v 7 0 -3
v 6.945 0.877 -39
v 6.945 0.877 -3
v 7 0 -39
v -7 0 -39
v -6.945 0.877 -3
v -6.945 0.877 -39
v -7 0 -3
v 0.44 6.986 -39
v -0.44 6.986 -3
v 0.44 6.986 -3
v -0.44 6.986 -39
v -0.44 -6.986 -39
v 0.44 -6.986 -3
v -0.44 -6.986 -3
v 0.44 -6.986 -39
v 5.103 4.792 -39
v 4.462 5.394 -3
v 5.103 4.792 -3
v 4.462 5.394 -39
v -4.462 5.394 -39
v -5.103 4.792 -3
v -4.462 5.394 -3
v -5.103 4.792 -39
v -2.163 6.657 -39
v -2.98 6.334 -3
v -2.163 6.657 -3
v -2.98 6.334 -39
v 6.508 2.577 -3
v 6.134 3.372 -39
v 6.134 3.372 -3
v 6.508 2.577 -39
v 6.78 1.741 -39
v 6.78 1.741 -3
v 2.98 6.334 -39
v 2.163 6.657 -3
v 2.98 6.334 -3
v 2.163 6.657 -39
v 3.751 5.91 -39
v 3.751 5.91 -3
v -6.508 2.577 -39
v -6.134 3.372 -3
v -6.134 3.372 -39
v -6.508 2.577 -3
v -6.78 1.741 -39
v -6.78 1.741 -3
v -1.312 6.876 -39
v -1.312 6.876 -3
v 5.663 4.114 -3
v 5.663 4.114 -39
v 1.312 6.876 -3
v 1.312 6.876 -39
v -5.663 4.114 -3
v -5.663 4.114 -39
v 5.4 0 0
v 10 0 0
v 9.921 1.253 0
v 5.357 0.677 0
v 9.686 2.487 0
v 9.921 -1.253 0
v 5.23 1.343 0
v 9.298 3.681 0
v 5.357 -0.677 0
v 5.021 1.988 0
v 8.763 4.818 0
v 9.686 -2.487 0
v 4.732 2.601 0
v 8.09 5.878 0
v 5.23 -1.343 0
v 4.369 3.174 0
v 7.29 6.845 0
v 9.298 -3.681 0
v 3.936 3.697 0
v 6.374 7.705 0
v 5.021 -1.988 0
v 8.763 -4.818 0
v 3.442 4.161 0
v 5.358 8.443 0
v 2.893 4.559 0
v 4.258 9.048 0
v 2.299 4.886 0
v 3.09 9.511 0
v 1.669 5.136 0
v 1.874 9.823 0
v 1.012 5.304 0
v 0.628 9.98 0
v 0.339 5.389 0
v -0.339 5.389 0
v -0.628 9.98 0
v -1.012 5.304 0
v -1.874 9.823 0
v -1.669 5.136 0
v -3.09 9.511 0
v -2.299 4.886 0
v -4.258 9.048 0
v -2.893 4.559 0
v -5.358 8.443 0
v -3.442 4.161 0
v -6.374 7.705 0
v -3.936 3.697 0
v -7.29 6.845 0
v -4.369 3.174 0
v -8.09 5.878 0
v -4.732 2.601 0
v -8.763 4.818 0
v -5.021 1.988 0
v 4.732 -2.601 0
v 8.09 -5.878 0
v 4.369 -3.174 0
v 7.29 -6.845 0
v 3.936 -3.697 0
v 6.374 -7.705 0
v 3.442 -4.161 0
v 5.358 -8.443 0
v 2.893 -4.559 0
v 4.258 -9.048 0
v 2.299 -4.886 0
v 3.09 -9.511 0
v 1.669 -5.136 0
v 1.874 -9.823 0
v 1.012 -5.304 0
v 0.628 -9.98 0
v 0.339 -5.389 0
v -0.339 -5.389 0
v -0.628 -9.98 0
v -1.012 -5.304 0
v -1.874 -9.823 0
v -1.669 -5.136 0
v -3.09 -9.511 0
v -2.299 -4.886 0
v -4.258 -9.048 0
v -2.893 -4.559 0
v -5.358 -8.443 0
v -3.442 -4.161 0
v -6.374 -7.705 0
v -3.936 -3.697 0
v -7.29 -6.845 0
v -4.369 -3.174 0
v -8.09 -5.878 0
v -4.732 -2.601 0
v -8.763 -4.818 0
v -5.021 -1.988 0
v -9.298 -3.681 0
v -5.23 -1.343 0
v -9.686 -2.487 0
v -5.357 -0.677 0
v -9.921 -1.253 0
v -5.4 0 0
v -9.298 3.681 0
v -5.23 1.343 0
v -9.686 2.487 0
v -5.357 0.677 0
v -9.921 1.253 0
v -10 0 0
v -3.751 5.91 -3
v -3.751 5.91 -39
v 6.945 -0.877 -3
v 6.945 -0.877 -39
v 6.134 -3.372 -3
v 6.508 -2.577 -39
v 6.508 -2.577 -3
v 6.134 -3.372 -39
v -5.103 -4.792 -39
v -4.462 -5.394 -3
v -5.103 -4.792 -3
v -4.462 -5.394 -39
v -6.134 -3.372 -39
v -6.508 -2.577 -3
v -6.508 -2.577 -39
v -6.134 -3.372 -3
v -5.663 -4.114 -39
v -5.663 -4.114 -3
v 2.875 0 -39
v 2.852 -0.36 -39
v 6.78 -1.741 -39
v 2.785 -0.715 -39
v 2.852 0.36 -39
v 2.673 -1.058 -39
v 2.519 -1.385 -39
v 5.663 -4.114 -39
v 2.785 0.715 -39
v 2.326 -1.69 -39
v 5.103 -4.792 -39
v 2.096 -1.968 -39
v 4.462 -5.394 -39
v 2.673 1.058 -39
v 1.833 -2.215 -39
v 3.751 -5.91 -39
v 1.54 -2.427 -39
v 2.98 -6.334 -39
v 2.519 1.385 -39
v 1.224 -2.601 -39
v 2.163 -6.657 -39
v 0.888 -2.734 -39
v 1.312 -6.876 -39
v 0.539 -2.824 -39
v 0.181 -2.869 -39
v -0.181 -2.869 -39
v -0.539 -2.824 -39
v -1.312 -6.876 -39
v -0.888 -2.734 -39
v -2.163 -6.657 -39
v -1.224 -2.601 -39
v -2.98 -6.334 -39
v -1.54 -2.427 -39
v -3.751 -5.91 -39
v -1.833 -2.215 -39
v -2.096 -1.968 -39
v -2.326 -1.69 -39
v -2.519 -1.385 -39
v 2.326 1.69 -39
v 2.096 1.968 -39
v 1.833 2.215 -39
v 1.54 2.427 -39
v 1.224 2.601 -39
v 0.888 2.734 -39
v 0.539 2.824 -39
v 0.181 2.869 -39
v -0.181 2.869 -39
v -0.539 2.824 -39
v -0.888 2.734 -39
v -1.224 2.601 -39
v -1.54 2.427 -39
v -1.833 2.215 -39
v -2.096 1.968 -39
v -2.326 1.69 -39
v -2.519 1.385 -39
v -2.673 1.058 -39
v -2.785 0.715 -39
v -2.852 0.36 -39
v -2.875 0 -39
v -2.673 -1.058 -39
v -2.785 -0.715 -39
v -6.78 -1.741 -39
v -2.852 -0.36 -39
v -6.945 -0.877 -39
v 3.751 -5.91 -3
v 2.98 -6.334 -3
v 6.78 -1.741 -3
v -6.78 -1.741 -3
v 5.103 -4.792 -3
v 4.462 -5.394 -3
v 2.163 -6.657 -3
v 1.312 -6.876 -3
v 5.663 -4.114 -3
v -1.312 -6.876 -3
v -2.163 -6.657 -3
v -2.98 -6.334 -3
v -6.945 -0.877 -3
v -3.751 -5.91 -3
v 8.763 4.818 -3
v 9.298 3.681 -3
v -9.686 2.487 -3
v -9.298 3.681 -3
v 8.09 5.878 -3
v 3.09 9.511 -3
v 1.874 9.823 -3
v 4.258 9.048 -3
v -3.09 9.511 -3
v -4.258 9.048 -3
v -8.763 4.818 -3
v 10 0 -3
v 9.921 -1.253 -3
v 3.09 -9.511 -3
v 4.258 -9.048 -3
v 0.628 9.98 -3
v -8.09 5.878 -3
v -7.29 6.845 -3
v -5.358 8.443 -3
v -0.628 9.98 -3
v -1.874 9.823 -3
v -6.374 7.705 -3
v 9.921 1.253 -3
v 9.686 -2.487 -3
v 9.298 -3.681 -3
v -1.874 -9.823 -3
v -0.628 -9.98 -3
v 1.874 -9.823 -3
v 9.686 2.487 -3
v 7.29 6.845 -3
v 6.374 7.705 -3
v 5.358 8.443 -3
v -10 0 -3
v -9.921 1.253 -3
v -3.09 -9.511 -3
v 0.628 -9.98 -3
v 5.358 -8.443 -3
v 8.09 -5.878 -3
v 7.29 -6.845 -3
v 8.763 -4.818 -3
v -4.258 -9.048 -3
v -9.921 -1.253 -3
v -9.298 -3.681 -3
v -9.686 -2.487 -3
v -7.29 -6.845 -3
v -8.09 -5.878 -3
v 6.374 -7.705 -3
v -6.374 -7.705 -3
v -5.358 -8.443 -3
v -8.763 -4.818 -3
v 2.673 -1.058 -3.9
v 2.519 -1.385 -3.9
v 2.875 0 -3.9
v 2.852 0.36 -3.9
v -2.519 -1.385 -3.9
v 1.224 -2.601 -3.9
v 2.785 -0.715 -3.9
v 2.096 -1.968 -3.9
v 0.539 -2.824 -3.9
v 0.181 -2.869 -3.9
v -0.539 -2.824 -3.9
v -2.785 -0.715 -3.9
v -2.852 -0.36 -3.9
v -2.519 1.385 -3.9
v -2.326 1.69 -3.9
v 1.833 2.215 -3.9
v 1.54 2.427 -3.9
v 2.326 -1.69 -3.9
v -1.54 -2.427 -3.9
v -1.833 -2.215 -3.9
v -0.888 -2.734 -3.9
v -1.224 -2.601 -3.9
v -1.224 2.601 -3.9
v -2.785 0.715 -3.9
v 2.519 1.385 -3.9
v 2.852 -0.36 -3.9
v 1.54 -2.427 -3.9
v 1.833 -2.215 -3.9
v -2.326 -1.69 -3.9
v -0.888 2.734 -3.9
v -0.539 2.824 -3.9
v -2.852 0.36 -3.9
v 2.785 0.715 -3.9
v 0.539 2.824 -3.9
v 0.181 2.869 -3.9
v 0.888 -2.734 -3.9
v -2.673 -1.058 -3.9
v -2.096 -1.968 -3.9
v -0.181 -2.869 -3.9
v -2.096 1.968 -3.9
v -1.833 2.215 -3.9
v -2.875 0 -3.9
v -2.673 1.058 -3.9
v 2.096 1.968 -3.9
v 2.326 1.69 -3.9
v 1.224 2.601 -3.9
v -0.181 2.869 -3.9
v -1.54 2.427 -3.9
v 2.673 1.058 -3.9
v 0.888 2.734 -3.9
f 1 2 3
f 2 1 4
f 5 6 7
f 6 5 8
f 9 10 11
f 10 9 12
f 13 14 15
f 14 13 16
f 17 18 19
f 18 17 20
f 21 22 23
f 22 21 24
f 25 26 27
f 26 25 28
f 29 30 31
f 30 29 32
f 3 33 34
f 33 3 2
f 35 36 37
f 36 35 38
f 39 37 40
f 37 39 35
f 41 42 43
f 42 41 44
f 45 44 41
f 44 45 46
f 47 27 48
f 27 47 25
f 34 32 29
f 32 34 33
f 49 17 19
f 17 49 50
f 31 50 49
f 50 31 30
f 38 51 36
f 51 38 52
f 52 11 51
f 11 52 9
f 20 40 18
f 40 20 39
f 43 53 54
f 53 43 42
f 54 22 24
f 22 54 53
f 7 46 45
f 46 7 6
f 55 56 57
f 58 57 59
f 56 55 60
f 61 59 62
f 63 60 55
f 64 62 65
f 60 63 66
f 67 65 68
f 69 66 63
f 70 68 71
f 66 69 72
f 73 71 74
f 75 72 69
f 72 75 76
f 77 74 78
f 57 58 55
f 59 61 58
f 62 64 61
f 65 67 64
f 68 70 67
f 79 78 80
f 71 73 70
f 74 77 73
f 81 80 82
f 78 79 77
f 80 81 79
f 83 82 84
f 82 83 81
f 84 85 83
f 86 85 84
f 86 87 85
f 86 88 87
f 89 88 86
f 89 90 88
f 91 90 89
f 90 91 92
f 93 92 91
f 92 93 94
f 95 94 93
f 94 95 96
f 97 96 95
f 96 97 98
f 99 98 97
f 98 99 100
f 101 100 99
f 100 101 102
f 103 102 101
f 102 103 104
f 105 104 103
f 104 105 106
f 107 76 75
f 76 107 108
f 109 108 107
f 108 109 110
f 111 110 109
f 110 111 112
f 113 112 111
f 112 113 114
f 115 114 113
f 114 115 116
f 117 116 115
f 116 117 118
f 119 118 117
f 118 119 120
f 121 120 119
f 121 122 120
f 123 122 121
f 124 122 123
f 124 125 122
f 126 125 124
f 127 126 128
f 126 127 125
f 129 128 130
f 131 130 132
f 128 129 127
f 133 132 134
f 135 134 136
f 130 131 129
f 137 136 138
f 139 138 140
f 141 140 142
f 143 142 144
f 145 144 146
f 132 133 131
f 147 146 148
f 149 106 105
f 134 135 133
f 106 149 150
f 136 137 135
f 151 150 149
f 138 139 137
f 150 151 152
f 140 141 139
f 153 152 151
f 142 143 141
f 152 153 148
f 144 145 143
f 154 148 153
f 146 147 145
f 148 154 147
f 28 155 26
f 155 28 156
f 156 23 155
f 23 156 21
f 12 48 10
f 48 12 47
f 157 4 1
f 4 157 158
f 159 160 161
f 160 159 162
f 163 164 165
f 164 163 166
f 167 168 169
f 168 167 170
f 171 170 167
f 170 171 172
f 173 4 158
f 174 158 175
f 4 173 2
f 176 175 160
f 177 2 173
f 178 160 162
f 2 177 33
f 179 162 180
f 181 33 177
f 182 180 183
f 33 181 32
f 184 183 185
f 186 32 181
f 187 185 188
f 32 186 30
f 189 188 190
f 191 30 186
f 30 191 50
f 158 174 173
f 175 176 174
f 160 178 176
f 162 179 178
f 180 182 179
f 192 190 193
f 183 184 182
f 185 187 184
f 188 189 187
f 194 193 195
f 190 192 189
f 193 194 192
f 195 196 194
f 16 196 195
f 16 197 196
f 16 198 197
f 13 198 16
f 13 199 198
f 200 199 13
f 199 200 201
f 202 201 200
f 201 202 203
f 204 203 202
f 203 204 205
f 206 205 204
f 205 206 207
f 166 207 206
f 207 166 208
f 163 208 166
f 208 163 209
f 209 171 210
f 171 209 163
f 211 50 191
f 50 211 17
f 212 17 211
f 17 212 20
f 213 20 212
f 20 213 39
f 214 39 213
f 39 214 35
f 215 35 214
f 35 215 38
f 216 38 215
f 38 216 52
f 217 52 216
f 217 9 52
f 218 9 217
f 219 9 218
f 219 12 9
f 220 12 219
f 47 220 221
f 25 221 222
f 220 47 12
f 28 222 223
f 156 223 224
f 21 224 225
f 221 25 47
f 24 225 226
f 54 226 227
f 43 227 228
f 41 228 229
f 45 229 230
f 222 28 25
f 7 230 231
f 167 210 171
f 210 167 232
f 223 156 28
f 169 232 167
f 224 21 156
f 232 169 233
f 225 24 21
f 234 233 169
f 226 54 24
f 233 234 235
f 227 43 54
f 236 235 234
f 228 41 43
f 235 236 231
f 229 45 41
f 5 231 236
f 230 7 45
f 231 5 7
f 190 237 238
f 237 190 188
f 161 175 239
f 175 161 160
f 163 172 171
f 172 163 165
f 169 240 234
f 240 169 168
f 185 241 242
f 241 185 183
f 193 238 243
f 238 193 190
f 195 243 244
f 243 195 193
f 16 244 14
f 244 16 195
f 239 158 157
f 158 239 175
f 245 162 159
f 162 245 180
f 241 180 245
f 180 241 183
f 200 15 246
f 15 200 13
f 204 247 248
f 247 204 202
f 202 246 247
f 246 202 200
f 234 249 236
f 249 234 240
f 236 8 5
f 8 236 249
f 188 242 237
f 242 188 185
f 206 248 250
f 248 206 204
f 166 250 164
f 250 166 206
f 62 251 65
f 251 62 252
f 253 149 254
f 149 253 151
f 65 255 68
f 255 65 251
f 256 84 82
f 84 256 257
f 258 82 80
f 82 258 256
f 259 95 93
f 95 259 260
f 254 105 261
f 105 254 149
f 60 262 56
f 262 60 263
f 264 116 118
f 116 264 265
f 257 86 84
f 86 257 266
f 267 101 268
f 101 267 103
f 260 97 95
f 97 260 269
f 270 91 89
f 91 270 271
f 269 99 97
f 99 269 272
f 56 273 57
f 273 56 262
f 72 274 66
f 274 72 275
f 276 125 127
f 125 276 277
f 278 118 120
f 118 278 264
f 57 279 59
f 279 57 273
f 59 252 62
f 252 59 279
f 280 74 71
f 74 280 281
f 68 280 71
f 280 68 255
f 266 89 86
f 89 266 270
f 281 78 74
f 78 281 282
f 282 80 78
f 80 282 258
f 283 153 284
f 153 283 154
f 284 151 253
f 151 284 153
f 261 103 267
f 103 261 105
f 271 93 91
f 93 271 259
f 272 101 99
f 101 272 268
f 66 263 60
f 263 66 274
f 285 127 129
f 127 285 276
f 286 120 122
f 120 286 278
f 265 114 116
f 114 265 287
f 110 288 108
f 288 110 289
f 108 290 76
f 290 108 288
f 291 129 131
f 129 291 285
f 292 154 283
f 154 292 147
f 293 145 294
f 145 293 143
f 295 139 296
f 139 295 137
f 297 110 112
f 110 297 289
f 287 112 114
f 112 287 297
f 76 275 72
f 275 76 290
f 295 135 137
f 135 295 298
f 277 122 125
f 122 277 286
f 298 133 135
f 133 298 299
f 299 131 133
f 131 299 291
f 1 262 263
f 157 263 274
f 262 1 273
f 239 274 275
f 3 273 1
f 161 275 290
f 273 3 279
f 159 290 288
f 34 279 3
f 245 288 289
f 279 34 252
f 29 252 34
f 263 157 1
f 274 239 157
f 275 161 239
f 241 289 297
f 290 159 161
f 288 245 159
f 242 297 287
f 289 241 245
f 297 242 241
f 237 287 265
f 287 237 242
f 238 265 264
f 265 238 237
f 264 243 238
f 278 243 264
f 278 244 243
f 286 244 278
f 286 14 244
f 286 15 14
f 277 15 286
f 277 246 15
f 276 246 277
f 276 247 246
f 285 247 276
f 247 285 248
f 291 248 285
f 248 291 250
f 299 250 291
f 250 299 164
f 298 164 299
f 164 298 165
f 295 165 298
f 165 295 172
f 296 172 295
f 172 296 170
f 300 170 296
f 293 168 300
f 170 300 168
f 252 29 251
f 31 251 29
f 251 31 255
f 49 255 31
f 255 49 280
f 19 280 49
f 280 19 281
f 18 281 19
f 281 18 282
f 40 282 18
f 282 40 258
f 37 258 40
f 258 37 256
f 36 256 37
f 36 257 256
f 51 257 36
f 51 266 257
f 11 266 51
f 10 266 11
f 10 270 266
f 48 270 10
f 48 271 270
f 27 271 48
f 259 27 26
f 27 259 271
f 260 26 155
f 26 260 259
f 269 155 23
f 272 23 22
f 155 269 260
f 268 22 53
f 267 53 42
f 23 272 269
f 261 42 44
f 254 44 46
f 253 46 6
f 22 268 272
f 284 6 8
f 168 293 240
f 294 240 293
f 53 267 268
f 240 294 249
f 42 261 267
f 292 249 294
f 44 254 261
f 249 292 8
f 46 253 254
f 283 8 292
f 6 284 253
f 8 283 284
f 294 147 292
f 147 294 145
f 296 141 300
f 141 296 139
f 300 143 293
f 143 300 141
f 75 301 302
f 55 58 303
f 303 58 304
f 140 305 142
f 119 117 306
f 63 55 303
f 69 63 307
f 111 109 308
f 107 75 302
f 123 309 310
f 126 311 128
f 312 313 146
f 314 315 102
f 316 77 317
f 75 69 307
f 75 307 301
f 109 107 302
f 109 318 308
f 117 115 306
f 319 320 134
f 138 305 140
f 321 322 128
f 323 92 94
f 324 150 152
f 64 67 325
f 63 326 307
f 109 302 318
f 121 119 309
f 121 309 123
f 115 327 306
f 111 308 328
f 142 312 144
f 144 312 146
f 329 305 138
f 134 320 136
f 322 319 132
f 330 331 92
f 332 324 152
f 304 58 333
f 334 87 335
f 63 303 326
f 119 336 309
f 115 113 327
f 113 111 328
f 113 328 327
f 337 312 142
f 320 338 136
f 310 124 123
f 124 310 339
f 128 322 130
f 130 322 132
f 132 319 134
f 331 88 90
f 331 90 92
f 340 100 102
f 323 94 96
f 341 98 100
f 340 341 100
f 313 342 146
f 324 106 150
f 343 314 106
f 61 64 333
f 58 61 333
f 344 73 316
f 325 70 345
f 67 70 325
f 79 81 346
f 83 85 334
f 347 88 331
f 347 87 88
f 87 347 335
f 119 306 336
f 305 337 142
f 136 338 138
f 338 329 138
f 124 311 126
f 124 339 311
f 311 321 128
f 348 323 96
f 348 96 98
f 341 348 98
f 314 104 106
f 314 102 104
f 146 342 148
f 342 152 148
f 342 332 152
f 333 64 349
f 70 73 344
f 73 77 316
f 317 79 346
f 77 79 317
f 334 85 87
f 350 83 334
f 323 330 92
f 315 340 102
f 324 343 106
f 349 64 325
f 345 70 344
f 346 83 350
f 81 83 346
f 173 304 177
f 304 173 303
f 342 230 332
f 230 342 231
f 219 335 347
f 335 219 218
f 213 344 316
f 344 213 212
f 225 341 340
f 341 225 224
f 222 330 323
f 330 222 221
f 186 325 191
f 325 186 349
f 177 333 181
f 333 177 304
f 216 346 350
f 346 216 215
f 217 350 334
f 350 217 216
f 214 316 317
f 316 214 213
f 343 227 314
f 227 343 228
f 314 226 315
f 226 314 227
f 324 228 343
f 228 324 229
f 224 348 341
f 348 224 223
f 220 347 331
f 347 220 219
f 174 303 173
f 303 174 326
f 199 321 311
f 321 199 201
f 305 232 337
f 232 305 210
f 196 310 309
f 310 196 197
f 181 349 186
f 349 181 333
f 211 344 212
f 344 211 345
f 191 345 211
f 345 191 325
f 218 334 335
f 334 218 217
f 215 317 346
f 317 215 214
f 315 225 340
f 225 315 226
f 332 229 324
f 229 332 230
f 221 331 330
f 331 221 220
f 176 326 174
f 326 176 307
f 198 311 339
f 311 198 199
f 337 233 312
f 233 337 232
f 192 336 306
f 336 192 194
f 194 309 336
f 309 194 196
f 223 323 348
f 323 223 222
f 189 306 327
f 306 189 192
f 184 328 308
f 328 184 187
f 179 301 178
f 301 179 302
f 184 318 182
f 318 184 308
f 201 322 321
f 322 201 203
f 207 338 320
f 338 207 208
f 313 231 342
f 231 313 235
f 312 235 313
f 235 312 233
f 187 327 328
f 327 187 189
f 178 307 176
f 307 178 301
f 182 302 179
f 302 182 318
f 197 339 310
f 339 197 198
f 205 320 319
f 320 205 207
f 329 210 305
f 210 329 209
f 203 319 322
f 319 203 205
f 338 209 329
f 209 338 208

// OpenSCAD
$fn = 50;


difference() {
	union() {
		translate(v = [0, 0, -39.0000000000]) {
			cylinder(h = 39, r = 7.0000000000);
		}
		translate(v = [0, 0, -3.0000000000]) {
			cylinder(h = 3, r = 10.0000000000);
		}
	}
	union() {
		translate(v = [0, 0, 0]) {
			rotate(a = [0, 0, 0]) {
				difference() {
					union() {
						#translate(v = [0, 0, -39.0000000000]) {
							cylinder(h = 39, r = 2.6000000000);
						}
						#translate(v = [0, 0, -3.9000000000]) {
							cylinder(h = 3.9000000000, r = 7.0000000000, r1 = 2.8750000000, r2 = 5.4000000000);
						}
						#translate(v = [0, 0, -39.0000000000]) {
							cylinder(h = 39, r = 2.8750000000);
						}
						#translate(v = [0, 0, -39.0000000000]) {
							cylinder(h = 39, r = 2.6000000000);
						}
					}
					union();
				}
			}
		}
	}
}
